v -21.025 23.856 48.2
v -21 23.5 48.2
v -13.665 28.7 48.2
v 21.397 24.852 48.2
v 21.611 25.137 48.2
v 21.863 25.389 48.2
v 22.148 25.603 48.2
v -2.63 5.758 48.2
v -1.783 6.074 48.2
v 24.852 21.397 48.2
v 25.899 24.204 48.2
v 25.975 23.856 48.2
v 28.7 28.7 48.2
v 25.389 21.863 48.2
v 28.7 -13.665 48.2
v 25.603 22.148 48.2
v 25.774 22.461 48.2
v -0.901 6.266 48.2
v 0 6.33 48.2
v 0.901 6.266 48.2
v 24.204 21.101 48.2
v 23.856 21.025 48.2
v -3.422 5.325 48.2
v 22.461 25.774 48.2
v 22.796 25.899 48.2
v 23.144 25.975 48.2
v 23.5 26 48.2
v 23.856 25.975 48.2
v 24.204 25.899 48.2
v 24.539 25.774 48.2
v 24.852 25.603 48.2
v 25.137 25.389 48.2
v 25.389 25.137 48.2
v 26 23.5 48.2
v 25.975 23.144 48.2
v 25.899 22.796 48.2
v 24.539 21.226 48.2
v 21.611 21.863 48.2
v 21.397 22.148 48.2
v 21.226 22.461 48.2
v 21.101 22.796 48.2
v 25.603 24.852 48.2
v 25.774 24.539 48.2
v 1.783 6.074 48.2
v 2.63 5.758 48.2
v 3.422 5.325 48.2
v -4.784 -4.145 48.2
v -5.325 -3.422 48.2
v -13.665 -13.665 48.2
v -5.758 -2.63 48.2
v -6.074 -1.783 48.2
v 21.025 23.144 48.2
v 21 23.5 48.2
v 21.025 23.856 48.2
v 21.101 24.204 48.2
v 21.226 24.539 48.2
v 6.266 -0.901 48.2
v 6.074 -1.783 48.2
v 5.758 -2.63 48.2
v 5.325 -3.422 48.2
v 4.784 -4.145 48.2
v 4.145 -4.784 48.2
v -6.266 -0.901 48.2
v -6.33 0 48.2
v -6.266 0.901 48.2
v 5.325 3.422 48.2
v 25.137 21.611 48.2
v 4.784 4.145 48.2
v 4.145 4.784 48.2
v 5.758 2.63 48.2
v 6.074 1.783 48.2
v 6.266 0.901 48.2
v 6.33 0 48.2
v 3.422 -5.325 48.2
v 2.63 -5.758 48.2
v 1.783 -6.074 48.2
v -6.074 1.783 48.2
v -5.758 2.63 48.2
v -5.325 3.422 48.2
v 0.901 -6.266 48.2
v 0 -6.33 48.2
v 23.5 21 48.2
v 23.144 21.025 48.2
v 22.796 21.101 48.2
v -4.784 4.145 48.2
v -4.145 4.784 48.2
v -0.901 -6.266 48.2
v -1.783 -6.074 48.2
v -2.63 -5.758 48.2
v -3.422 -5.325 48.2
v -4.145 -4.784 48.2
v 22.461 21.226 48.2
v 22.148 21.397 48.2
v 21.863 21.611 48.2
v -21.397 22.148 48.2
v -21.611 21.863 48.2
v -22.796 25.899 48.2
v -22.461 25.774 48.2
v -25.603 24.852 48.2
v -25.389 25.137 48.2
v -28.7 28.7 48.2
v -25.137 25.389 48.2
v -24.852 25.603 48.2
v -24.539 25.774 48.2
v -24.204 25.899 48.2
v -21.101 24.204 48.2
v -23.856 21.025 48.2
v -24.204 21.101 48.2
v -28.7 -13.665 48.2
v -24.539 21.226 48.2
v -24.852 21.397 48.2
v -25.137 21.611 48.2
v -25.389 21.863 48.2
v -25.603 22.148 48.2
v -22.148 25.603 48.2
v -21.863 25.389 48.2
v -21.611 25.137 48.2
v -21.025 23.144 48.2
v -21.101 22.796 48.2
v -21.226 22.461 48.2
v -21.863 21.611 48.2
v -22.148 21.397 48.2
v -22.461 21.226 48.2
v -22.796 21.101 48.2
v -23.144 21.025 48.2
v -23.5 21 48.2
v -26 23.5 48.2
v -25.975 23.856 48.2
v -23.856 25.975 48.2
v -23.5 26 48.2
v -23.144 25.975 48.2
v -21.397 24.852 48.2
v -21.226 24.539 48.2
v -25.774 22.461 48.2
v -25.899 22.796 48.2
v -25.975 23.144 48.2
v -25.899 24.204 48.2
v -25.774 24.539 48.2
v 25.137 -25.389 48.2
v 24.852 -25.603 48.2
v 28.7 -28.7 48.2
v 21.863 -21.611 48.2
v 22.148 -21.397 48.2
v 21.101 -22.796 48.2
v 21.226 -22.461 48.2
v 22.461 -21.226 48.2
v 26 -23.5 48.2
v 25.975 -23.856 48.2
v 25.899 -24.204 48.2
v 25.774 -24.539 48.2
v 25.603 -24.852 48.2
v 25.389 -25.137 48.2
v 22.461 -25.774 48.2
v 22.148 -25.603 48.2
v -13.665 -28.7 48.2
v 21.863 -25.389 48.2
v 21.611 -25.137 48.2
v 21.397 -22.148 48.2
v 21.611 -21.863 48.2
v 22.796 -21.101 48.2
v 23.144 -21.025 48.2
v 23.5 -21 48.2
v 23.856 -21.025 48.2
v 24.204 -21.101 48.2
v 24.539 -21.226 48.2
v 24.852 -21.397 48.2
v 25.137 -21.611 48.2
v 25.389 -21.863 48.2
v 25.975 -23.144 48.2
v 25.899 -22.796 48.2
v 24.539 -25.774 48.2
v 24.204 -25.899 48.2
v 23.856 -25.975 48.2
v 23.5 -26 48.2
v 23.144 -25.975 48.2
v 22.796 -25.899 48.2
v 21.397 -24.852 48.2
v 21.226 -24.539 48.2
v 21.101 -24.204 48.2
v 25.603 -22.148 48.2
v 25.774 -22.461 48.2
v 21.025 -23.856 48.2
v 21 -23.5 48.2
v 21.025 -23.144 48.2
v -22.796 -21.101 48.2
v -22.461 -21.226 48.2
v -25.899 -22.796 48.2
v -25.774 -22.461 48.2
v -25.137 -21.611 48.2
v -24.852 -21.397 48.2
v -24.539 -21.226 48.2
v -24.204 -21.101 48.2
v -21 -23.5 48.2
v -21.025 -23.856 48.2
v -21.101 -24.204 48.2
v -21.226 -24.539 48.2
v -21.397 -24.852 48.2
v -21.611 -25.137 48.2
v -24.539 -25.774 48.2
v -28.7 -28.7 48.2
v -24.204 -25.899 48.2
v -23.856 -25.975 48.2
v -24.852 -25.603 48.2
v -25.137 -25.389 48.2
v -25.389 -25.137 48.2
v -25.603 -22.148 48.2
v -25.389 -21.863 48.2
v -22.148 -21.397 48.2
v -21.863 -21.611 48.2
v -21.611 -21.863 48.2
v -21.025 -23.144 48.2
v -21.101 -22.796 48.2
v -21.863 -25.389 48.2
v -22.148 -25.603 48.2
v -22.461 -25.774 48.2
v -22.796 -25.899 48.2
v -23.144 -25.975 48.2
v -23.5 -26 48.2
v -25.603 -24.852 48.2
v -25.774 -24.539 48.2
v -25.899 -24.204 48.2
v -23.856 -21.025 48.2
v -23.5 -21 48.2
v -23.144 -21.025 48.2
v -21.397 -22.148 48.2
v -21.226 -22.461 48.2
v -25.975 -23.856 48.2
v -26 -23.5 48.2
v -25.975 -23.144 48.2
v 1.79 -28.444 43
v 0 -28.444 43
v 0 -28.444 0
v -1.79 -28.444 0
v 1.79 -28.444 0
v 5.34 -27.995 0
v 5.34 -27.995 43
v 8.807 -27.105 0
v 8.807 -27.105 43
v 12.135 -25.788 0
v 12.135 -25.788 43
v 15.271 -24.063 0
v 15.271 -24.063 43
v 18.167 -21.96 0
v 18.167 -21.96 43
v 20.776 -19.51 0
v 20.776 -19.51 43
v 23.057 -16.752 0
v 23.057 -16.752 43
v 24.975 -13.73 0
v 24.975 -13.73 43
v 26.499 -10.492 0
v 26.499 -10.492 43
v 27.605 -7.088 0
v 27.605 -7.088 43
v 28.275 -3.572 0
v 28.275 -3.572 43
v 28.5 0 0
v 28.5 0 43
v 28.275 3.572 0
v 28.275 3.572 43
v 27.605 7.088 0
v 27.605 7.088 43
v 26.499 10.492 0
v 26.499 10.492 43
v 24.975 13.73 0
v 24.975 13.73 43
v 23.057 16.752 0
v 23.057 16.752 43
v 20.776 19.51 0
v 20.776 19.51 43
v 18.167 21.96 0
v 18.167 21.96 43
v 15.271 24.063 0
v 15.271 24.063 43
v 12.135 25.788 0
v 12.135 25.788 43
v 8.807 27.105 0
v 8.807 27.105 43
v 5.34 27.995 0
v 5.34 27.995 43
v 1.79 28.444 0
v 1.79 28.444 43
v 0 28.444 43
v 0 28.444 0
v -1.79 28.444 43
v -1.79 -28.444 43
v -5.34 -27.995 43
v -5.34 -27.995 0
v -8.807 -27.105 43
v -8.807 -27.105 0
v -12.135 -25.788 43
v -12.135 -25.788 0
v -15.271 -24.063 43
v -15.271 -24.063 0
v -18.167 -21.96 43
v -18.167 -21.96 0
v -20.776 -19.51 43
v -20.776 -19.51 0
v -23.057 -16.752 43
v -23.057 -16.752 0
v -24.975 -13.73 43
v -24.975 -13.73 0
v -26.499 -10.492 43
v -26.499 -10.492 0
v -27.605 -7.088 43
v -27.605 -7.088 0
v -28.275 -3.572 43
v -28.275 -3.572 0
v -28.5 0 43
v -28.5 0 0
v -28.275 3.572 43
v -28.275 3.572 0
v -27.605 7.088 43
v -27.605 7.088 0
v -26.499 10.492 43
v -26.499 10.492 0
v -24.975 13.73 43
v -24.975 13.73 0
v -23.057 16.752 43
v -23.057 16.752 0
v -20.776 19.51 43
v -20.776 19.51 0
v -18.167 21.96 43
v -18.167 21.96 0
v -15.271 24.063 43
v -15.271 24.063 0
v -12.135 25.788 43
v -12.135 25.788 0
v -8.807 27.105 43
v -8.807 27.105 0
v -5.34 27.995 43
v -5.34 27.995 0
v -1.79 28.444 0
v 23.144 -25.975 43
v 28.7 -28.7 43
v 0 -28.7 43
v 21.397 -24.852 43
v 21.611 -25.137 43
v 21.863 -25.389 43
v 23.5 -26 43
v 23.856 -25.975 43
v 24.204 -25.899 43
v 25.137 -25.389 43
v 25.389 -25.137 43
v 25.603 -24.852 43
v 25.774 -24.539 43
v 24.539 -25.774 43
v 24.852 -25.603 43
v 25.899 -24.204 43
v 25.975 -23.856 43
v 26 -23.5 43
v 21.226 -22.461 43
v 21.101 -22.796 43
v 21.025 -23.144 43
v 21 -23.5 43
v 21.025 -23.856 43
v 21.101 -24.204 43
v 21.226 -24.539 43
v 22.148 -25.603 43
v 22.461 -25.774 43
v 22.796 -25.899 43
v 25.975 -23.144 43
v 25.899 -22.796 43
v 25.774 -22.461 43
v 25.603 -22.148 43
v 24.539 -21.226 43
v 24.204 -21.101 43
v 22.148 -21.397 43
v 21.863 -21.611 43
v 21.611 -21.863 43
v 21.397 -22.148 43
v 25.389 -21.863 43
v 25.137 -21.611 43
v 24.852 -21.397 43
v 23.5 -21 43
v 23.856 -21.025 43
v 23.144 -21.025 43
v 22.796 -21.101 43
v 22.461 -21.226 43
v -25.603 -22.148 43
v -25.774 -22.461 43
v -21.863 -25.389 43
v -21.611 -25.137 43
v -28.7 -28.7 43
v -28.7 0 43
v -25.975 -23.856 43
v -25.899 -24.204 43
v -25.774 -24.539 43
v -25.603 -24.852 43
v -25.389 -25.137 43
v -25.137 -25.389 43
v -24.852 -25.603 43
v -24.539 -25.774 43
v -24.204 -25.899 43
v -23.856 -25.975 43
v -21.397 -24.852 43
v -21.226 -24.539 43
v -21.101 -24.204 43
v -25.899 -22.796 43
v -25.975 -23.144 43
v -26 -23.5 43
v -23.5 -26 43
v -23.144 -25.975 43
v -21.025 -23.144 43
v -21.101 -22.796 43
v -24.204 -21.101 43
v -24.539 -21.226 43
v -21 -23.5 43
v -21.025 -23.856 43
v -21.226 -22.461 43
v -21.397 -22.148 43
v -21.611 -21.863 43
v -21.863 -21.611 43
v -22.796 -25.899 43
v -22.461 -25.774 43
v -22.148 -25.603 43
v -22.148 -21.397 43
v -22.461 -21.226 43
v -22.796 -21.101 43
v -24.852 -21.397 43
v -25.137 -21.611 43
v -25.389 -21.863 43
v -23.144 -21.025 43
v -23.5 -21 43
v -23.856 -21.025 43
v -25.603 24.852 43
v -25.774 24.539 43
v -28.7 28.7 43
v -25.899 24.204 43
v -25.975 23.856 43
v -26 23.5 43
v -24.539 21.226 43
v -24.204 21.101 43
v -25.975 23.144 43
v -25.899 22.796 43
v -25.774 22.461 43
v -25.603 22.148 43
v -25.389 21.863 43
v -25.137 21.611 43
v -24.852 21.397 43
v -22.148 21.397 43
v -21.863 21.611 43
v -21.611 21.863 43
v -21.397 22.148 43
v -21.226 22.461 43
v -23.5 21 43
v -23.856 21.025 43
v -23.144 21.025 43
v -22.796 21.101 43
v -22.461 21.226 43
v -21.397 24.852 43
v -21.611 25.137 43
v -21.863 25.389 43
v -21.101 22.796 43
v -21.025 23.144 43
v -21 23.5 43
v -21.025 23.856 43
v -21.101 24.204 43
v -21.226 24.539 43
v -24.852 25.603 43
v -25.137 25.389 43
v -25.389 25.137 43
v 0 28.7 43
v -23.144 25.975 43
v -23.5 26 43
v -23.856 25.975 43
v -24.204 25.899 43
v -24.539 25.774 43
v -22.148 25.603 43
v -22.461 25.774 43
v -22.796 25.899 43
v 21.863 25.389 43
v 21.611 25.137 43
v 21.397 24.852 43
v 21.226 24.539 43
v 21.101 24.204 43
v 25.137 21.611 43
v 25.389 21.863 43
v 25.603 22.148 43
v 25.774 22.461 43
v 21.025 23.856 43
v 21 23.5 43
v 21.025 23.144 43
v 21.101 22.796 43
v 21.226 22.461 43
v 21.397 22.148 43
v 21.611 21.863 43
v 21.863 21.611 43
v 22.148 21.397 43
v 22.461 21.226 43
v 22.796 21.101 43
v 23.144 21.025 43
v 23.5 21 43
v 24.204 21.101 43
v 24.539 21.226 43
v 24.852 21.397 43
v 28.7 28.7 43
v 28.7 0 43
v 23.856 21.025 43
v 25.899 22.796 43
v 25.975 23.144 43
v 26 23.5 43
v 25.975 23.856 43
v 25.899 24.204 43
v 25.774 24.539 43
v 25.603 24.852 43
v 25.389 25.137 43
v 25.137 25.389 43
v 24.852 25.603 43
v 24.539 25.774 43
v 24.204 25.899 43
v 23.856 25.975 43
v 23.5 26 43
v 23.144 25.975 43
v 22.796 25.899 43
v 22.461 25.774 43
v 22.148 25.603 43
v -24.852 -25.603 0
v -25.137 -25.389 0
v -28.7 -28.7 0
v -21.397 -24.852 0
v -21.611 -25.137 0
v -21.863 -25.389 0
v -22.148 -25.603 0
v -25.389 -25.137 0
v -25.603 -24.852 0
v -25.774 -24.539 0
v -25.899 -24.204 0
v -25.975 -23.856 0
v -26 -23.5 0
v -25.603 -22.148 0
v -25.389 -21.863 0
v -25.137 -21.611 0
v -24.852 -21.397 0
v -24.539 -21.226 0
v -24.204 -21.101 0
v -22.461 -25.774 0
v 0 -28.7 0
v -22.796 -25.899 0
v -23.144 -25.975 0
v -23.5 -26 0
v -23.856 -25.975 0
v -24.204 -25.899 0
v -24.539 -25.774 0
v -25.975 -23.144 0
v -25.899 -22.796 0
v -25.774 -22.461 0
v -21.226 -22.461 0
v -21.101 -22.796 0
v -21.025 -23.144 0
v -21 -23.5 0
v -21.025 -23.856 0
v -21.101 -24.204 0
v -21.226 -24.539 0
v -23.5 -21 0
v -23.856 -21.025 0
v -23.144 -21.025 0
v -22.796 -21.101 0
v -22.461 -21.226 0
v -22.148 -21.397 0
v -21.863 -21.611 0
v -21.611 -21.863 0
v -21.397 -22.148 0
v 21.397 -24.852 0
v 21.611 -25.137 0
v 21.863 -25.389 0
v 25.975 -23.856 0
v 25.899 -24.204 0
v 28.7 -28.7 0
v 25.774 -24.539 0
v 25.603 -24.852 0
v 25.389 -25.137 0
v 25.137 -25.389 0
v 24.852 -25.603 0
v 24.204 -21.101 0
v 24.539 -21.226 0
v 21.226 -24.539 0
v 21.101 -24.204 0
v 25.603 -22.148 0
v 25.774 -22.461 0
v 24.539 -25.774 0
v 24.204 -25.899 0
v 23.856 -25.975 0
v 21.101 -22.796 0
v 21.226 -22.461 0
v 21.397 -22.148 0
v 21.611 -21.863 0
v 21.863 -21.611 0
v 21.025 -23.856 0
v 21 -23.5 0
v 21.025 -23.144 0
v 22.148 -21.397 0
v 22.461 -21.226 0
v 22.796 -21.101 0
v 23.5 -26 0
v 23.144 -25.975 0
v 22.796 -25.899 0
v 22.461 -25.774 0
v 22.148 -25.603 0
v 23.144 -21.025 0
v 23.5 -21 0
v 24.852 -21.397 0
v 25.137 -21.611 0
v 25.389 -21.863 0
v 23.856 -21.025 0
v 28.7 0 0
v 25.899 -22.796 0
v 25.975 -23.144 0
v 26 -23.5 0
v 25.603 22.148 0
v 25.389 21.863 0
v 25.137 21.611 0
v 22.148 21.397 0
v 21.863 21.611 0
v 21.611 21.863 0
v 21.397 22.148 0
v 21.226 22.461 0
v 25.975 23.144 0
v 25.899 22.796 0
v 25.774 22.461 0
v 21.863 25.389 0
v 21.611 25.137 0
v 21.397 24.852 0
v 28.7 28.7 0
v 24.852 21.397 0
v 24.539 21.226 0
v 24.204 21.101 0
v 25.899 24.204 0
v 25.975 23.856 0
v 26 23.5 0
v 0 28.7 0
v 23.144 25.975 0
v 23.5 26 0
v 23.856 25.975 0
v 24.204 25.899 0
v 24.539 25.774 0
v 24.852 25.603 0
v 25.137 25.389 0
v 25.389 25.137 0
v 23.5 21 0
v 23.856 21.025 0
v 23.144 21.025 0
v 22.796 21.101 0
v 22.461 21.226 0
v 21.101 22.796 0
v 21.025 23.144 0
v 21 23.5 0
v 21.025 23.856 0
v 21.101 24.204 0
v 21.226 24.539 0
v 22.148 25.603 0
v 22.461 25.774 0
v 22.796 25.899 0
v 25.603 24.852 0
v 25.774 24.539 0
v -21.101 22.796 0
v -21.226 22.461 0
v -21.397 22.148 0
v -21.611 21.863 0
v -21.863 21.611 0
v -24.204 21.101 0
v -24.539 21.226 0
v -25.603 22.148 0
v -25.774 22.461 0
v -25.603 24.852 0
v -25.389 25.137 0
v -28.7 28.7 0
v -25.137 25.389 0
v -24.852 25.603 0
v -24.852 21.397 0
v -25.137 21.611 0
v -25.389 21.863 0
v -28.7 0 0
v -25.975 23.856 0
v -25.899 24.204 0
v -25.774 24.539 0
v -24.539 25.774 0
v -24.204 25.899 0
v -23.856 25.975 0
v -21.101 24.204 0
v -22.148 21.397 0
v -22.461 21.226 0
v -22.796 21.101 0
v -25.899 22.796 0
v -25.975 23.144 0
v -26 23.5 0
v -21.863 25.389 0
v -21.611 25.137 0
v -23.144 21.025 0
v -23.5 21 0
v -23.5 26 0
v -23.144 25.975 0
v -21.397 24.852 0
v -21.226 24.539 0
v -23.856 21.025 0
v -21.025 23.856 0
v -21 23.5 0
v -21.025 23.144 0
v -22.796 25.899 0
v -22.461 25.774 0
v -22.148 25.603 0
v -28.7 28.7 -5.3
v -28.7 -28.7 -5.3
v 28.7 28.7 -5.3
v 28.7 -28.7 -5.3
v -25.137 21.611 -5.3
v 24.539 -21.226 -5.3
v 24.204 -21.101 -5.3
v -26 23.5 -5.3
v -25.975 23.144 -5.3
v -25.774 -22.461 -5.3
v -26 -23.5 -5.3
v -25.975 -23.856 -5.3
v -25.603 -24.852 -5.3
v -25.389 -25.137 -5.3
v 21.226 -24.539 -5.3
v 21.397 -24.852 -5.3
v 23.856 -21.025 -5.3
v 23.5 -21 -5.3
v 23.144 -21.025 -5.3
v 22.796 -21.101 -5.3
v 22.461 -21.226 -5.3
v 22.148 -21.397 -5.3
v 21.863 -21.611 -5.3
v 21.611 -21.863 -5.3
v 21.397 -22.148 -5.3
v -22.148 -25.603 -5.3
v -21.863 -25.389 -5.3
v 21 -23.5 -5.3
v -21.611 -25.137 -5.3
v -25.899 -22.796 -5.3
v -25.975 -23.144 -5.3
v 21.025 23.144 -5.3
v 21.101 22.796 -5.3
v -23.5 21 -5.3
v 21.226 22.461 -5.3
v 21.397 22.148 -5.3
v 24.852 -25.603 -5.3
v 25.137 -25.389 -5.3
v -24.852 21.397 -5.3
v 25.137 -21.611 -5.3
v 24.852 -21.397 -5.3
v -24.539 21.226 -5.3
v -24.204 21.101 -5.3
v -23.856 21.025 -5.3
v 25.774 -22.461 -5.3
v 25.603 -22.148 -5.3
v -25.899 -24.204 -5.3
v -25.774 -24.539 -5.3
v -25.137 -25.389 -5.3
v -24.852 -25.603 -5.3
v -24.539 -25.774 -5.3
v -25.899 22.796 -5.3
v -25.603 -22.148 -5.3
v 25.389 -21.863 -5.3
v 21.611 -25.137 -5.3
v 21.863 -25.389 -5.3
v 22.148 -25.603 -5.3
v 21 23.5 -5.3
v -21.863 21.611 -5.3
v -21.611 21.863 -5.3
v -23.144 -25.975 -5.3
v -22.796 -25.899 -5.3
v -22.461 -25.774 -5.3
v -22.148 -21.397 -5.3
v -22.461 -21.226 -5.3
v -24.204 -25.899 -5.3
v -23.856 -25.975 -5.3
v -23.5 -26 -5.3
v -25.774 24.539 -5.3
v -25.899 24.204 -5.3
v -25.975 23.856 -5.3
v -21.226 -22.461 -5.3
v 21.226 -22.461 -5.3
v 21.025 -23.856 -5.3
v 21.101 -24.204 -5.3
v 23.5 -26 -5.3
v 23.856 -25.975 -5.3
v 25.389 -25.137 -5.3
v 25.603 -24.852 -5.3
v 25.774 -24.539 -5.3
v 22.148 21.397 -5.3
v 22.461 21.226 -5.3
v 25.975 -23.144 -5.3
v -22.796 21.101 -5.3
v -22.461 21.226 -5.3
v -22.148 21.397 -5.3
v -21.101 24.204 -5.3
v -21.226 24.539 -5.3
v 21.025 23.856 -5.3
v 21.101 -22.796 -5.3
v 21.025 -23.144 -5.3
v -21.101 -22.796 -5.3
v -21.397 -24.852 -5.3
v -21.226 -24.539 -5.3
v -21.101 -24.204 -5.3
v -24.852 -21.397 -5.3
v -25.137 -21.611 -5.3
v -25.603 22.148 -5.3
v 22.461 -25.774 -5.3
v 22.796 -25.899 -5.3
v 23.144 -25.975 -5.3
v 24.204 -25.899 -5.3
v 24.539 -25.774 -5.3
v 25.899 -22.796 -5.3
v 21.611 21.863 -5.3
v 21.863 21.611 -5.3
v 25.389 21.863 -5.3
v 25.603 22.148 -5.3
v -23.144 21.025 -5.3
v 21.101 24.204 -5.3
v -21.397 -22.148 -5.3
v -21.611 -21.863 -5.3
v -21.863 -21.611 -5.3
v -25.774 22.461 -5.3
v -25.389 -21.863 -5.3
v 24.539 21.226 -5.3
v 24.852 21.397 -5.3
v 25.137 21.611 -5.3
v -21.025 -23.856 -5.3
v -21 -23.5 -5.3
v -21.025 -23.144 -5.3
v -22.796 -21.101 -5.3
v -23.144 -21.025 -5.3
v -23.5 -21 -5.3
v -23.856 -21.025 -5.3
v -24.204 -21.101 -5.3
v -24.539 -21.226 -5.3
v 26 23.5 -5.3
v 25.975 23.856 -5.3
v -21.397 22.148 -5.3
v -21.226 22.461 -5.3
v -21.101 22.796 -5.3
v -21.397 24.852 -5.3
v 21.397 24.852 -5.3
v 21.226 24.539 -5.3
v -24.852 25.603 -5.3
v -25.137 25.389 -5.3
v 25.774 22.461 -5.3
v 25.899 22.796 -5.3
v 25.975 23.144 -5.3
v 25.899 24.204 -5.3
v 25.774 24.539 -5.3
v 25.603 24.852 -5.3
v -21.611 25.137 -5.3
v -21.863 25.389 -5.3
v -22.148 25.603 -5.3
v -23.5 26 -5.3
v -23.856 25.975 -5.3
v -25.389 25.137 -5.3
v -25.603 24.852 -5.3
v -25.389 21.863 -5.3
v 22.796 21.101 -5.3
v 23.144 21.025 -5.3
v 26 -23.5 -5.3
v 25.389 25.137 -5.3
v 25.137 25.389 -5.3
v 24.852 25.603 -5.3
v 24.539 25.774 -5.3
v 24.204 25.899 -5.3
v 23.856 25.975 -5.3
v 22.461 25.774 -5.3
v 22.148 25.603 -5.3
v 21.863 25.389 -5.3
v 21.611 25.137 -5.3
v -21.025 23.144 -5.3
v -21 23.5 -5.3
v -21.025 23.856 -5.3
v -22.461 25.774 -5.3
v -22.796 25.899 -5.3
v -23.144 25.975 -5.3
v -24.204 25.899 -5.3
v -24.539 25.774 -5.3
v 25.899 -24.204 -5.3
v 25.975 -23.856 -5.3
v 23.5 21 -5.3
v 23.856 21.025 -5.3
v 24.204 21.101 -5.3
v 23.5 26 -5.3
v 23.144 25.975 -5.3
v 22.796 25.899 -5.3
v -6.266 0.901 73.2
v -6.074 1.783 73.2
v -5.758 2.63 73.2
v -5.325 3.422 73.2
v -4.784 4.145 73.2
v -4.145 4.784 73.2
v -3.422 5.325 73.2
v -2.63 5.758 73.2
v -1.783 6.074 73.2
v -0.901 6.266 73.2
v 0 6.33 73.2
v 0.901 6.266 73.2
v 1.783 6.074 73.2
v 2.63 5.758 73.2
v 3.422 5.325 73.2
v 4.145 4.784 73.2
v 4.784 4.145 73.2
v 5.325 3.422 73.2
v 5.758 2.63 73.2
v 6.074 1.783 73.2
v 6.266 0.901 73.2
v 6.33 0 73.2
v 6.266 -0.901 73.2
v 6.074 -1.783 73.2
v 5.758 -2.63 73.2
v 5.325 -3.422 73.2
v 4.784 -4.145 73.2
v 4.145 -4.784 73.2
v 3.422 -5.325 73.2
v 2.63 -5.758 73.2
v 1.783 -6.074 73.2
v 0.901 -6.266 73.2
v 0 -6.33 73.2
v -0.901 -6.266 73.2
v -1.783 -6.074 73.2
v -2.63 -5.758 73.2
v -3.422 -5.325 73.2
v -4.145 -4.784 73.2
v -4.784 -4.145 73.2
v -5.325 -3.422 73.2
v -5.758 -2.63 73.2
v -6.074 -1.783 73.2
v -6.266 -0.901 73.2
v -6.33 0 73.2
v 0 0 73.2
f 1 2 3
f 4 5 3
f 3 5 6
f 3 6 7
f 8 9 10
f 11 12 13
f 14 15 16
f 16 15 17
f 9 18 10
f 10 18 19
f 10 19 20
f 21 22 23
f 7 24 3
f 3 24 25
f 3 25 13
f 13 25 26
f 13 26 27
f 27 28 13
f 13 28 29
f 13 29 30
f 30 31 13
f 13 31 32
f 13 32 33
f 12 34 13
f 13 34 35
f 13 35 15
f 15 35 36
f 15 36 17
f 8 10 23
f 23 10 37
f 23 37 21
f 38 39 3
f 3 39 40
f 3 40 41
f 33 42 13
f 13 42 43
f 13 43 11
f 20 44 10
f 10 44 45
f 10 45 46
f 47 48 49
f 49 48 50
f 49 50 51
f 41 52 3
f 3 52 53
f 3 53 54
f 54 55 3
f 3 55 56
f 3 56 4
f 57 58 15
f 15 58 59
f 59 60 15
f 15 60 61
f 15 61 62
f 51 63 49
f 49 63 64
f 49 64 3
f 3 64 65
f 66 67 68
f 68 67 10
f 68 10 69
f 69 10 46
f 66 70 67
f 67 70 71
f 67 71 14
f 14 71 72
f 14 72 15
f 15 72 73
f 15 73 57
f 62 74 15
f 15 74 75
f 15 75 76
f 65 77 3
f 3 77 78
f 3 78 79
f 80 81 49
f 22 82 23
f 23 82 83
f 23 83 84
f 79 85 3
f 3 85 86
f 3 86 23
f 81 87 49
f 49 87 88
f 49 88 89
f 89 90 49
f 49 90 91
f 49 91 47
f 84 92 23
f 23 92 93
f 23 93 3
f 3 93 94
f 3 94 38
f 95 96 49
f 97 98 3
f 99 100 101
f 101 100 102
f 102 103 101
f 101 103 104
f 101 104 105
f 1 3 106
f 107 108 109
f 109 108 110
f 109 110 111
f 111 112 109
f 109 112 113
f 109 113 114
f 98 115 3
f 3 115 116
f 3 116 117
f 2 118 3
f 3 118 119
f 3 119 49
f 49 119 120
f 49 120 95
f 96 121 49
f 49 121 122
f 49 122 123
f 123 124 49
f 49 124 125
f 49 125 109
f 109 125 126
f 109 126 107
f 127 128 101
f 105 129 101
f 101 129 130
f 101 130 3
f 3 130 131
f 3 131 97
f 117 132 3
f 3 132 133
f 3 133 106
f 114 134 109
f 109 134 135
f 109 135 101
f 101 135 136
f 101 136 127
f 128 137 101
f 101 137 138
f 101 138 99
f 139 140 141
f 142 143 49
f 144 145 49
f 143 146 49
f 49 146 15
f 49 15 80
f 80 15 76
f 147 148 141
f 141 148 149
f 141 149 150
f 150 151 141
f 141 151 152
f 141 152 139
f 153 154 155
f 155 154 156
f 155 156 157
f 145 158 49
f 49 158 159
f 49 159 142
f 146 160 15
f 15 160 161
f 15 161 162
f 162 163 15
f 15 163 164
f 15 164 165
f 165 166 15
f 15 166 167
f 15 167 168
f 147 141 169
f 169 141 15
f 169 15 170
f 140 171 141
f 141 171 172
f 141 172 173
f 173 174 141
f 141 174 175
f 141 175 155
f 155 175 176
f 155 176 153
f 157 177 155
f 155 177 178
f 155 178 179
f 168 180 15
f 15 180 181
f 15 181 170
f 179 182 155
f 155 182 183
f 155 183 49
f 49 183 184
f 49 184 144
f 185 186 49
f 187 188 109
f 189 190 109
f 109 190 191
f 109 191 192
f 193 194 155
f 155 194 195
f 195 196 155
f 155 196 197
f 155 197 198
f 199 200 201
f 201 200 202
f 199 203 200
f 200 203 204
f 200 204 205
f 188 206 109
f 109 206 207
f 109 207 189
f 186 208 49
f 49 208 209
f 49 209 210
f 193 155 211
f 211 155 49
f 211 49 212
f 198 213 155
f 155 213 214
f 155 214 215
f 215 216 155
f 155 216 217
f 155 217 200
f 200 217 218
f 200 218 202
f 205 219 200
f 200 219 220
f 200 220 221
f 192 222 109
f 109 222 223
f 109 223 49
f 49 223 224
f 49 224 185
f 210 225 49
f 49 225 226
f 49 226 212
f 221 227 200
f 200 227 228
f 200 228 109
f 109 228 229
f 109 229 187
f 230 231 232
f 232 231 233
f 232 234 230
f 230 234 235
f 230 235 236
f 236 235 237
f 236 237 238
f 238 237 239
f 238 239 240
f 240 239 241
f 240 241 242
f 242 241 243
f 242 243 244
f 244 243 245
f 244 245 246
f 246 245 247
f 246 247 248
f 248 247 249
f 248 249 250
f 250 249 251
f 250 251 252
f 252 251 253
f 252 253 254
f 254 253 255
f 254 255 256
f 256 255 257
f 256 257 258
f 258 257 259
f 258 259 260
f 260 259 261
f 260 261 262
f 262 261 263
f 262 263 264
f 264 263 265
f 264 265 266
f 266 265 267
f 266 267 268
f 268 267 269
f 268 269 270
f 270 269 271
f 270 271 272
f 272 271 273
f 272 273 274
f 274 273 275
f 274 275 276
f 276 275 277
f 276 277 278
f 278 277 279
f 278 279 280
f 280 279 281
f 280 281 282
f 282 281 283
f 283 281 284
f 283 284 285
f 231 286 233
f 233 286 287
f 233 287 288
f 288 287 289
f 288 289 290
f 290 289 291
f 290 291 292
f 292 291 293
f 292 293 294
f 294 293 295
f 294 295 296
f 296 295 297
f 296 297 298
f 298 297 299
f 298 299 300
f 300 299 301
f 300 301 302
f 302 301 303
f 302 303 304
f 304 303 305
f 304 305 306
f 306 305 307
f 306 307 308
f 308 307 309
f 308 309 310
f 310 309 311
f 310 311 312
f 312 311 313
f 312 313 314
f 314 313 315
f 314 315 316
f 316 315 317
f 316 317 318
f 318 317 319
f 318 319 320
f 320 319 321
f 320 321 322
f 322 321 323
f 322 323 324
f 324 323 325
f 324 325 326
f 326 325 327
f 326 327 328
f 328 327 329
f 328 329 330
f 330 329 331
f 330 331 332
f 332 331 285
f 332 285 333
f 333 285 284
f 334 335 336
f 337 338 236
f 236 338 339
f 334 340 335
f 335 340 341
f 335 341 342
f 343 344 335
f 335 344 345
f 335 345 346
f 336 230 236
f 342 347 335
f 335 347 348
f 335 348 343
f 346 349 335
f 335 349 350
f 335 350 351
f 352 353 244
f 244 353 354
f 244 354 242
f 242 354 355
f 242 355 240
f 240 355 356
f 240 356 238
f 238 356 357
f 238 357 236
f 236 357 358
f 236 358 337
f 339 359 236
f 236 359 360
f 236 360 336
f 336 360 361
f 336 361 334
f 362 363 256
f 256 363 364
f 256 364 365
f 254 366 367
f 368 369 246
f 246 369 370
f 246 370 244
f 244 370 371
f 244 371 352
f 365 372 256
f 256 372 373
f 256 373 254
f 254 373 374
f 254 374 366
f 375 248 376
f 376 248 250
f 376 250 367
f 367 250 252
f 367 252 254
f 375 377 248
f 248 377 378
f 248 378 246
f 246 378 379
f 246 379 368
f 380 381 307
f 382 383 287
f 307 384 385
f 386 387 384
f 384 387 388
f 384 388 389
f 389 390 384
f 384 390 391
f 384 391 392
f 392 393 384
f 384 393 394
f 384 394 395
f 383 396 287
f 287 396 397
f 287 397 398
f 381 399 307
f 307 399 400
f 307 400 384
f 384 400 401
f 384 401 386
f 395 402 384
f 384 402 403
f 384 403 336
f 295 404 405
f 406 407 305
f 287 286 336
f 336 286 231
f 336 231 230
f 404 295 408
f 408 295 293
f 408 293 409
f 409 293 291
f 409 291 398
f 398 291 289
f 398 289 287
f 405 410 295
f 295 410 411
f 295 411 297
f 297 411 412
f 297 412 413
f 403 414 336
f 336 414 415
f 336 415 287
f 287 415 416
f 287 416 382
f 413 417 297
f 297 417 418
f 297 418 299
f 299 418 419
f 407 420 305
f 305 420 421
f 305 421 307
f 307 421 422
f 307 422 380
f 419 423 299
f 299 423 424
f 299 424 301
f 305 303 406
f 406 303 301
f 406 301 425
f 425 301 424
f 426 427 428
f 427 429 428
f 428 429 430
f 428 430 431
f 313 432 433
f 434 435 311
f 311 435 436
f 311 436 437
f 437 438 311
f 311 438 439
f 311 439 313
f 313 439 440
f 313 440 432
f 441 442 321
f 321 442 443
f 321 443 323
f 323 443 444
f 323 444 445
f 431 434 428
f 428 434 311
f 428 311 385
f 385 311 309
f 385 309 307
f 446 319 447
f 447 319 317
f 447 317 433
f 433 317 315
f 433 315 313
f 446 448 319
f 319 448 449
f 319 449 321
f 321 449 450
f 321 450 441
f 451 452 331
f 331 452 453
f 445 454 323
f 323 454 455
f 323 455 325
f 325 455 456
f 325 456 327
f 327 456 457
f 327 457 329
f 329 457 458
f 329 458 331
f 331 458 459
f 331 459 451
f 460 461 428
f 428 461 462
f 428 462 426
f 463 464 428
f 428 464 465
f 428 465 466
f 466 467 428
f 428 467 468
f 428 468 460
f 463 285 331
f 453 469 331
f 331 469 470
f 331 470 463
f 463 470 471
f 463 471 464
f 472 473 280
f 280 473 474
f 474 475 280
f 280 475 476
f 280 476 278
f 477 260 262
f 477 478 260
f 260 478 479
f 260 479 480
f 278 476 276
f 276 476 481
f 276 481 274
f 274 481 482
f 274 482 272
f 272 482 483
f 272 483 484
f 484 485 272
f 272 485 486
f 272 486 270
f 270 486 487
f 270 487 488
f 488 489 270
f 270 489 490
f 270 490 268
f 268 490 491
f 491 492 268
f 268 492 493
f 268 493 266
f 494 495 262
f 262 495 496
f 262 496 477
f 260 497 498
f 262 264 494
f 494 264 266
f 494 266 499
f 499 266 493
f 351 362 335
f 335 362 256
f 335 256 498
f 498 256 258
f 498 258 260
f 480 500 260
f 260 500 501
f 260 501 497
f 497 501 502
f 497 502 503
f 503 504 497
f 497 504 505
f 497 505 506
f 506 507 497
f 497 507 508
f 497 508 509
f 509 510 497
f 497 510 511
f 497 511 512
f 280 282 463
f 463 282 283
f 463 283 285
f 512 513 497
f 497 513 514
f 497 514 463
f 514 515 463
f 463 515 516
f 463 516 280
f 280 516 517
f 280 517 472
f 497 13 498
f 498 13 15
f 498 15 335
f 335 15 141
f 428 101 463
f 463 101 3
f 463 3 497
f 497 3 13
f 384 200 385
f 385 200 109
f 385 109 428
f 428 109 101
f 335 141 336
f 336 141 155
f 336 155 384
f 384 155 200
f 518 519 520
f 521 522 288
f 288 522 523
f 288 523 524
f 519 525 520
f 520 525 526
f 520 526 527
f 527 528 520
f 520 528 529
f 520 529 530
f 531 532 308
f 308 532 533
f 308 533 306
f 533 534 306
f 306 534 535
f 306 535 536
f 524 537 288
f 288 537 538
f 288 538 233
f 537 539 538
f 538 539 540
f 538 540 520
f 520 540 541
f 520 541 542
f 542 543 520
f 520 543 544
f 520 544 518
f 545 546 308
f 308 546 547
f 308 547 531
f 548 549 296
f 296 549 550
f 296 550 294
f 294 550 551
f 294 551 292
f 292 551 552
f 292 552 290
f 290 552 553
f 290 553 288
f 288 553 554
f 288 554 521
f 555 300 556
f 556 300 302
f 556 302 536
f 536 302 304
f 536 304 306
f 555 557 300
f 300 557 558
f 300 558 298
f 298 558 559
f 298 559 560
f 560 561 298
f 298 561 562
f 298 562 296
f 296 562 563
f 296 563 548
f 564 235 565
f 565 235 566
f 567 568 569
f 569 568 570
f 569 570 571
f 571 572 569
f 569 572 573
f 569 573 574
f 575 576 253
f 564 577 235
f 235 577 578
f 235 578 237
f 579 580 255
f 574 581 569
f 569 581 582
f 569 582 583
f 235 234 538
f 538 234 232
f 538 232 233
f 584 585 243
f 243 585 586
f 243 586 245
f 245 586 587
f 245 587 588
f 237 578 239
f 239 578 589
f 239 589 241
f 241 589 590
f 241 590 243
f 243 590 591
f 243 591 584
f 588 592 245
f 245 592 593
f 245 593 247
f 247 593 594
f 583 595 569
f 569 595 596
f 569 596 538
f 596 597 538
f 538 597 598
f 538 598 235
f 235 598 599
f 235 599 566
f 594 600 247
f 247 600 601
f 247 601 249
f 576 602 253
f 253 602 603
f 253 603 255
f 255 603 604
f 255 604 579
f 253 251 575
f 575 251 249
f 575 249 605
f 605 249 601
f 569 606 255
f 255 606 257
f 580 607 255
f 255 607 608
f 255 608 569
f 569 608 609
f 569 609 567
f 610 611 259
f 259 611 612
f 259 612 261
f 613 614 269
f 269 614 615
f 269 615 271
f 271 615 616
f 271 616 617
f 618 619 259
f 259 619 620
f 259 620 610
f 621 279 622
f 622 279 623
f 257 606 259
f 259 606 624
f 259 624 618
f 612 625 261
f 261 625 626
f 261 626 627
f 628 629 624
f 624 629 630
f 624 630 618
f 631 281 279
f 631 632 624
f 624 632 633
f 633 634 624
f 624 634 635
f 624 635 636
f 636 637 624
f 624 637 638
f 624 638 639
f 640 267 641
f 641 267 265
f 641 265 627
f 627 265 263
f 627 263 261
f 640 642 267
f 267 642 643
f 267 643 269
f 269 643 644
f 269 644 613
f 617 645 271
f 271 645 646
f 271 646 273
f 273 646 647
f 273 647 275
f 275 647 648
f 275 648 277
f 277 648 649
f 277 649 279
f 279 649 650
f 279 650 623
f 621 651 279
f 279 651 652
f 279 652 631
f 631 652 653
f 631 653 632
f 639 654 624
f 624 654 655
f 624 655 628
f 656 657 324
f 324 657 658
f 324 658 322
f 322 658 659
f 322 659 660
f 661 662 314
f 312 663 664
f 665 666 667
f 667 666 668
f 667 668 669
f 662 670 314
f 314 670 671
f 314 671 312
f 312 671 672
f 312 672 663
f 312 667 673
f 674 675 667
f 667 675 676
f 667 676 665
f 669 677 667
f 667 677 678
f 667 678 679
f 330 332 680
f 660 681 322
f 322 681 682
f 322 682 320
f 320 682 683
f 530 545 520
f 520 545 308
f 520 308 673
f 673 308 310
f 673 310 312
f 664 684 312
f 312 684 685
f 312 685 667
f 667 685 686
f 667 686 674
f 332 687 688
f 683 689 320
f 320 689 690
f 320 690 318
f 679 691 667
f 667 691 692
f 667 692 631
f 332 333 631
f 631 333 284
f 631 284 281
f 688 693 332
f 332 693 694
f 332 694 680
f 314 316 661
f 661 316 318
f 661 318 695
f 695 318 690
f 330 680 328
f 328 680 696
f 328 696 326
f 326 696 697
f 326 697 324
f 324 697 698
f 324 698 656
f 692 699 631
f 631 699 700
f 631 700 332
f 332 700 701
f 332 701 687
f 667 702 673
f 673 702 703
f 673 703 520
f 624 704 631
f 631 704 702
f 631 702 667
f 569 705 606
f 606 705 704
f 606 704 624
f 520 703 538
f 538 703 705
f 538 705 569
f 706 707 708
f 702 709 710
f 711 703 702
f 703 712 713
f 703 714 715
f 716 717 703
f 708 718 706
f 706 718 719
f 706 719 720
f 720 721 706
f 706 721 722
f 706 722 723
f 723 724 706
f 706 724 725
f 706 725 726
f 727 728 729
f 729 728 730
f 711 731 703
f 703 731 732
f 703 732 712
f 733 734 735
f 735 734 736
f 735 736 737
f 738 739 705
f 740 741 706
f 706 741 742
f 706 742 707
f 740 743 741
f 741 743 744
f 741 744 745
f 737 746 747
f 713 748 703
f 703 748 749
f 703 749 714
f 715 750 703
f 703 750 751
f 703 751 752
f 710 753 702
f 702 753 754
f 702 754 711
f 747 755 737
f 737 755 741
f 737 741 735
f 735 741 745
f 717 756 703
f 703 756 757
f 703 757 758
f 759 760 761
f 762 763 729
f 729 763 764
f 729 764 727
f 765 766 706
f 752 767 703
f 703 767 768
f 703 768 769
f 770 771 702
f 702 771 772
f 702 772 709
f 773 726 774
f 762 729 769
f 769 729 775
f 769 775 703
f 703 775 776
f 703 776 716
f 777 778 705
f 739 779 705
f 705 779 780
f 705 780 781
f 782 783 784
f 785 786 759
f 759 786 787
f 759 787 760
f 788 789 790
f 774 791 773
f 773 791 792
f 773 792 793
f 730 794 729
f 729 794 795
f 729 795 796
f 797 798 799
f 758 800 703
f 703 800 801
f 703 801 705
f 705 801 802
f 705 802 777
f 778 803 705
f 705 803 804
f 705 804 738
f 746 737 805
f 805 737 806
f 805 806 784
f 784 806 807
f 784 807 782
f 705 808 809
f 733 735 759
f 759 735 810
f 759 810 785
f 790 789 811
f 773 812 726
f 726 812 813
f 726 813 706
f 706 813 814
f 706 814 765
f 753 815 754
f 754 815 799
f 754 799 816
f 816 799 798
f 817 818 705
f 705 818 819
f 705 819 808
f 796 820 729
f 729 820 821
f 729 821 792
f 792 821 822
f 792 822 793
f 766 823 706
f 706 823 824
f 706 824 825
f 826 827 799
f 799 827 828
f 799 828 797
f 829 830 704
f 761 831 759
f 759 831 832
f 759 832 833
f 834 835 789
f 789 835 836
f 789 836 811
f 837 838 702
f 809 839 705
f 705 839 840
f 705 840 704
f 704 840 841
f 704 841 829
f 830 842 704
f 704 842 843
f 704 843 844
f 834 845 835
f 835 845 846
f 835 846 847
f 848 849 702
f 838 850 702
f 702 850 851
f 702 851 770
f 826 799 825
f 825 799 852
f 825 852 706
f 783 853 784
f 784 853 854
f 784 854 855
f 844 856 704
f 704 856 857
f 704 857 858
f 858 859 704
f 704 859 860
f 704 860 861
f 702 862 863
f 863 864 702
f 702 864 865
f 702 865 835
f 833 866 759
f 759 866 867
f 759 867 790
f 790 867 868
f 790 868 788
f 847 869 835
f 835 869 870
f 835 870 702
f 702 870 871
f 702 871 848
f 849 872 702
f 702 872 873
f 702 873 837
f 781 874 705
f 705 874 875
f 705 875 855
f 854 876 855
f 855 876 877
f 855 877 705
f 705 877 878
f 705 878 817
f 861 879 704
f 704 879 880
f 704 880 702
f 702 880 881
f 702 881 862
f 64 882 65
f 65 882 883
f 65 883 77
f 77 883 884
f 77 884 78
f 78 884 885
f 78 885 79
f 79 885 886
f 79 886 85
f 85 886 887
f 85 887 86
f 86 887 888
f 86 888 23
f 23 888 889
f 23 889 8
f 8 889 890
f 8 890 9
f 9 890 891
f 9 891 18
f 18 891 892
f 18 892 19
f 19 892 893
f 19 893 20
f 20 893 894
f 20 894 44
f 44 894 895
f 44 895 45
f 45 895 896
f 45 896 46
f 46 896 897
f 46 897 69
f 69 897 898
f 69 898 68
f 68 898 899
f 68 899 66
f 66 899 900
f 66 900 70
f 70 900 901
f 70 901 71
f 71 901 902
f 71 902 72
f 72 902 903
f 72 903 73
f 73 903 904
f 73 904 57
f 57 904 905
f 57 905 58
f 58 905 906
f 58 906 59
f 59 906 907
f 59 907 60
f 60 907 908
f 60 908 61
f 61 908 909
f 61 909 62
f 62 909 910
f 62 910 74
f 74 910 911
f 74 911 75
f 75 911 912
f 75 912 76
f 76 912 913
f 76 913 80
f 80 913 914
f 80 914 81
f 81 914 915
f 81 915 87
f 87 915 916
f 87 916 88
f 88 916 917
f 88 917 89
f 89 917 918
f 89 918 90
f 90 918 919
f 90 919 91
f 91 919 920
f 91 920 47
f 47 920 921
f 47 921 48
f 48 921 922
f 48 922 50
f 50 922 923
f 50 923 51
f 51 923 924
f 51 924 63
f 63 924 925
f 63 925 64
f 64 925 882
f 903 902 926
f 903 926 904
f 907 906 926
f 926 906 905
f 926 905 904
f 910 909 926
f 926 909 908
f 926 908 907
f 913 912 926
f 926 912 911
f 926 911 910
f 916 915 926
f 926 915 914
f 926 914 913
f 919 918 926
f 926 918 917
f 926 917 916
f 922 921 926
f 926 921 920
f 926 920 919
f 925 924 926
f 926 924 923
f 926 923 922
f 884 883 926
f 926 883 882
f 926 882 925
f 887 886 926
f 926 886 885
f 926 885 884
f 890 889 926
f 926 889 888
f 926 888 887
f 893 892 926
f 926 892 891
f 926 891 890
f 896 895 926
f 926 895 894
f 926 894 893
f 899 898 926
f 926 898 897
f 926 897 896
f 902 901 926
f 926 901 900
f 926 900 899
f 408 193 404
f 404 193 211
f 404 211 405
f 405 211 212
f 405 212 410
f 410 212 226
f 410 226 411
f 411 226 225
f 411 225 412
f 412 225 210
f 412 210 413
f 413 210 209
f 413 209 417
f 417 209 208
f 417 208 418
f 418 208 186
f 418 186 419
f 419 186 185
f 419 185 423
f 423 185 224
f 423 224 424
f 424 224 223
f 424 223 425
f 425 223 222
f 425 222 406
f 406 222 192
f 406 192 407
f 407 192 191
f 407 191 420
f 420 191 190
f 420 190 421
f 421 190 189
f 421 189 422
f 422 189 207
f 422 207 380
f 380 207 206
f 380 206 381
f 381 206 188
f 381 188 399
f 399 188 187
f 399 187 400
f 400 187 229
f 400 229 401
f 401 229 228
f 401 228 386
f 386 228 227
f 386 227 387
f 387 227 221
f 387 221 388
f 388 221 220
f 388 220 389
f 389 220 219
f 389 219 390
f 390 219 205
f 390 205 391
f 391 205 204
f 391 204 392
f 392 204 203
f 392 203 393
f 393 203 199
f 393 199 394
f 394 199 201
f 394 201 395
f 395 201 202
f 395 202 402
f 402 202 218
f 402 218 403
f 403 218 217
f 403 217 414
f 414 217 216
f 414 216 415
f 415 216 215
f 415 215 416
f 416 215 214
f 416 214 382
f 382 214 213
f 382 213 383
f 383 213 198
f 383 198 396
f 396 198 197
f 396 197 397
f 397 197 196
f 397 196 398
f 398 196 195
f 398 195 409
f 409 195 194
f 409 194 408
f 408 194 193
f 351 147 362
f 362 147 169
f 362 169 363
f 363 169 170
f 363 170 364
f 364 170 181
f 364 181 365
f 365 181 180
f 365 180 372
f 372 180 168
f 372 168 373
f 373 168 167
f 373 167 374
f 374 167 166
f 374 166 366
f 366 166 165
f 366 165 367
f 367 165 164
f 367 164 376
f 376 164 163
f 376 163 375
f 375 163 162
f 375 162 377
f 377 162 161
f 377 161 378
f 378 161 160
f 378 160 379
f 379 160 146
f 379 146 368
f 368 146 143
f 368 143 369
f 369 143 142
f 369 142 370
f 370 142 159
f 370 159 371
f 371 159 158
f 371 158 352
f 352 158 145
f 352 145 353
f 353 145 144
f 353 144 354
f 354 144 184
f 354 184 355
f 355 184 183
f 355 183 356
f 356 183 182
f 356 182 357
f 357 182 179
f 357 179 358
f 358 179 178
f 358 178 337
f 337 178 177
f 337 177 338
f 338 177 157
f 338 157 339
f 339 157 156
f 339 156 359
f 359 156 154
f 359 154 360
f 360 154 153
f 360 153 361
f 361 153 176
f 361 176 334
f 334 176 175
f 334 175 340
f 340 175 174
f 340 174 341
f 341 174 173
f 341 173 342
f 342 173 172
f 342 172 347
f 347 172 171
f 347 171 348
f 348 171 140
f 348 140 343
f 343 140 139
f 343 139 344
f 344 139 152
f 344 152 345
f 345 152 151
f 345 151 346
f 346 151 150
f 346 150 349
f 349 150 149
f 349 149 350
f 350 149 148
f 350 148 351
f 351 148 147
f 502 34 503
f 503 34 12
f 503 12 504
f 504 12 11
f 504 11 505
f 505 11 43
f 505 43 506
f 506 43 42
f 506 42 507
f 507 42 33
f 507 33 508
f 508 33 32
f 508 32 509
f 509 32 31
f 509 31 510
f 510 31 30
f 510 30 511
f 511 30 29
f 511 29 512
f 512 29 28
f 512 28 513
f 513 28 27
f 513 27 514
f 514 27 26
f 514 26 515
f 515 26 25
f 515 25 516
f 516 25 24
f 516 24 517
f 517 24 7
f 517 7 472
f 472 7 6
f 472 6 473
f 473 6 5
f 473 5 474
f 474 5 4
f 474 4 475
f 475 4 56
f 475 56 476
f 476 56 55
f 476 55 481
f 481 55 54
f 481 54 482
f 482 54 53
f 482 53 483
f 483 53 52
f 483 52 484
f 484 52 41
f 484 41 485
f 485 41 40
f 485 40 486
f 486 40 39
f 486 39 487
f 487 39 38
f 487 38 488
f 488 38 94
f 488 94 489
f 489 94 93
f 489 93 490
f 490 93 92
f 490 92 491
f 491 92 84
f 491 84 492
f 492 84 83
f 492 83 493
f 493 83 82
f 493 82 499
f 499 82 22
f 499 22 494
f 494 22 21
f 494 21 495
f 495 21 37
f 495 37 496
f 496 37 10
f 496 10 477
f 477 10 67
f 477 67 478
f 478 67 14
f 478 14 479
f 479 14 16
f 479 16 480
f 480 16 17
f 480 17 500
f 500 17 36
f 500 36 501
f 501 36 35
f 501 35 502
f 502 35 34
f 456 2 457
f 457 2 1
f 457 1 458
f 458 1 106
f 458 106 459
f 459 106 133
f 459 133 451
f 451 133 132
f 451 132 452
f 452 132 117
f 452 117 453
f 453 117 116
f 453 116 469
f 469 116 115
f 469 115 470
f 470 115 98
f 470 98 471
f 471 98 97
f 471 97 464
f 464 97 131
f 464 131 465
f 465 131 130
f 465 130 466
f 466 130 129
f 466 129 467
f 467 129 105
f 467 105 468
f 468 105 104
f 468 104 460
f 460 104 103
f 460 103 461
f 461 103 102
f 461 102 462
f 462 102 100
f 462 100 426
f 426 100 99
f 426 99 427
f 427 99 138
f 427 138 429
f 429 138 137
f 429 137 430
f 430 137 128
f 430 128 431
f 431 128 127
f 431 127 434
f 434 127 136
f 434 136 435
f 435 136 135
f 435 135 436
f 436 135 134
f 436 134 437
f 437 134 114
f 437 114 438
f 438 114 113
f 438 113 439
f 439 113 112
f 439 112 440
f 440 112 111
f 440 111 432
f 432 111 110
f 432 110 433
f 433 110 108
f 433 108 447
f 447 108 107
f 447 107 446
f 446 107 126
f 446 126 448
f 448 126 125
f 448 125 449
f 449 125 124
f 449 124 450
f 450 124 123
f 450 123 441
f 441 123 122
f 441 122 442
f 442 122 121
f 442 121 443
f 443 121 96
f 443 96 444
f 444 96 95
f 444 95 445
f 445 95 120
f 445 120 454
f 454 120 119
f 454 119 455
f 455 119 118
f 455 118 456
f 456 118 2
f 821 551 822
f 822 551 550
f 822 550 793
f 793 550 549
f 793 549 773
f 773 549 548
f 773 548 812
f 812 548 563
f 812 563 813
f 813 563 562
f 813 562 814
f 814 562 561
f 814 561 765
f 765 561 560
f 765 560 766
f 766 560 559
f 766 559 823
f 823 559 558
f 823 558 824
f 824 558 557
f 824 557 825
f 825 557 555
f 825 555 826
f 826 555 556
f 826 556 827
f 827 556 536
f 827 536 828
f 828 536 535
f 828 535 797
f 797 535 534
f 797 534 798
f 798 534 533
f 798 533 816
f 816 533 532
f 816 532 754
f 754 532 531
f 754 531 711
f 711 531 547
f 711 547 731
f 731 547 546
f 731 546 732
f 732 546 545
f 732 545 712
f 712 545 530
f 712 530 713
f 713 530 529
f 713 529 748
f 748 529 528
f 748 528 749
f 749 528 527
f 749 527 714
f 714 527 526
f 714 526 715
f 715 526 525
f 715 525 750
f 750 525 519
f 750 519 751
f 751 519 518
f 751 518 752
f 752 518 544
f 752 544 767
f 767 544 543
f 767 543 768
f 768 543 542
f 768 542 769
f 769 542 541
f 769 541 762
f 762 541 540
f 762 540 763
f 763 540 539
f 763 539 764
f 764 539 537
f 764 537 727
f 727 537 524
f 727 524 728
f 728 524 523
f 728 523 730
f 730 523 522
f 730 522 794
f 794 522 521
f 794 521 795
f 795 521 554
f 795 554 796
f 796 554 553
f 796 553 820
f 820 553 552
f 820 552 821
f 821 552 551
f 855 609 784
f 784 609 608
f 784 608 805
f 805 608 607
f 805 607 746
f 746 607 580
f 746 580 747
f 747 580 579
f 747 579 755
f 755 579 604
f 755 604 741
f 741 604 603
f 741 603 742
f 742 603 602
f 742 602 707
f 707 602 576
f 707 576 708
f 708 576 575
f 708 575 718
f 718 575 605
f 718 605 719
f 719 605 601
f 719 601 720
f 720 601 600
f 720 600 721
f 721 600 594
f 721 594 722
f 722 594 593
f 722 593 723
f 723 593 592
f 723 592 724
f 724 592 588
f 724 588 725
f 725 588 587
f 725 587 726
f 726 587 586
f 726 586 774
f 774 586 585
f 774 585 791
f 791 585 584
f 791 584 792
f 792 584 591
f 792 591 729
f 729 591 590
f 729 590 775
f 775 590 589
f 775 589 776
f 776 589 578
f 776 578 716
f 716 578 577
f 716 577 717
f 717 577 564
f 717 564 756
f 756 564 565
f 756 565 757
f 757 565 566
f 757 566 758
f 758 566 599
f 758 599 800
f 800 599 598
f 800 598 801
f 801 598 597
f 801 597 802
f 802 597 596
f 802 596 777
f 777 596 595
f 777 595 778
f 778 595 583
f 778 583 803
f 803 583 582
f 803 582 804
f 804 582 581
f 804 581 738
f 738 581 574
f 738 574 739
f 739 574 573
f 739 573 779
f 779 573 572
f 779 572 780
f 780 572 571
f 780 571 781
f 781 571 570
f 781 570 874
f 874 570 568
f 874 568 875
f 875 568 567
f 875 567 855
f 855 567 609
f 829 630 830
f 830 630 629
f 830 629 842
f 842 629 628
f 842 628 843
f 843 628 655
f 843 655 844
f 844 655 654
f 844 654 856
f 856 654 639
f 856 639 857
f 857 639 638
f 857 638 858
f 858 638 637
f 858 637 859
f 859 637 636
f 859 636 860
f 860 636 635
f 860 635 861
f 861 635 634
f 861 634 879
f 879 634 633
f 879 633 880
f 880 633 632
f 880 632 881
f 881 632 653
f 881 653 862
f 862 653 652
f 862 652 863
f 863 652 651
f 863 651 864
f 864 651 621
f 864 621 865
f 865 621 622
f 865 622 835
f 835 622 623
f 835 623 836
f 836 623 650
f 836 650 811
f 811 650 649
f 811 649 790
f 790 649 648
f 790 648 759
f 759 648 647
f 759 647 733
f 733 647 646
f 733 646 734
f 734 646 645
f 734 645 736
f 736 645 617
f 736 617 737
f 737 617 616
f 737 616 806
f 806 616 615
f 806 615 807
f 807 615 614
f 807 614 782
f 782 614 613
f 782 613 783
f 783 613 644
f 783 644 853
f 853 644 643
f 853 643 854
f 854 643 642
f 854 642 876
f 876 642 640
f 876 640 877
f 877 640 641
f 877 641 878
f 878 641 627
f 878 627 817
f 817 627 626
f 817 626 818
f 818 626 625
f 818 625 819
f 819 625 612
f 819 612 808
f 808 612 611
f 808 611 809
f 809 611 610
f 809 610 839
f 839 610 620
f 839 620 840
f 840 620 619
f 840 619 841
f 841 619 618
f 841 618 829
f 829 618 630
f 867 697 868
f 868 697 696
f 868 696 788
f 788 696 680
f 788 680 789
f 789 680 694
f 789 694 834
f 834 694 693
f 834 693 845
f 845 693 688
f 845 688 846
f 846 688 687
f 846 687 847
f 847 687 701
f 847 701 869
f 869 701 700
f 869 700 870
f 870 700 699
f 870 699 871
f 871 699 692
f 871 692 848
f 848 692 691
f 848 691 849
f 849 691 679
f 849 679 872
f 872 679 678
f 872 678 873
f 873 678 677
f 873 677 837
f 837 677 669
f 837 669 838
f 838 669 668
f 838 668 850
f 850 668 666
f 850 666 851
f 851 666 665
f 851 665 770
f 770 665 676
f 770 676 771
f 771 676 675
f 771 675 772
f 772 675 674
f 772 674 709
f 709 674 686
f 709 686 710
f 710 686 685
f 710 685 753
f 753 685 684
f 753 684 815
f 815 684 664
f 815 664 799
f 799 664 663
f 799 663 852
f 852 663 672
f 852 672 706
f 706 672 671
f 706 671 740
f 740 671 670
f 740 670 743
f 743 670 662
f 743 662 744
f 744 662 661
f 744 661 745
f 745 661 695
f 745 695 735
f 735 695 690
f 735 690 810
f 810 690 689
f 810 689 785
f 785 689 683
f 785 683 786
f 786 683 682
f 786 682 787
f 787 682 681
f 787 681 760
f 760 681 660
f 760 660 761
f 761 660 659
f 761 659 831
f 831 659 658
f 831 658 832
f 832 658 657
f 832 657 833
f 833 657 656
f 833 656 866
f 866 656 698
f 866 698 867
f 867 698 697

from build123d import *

# Parameters (mm, degrees)
SKIZZE1_R                       = 28.5
AUFSATZ_LINEAR_AUSTRAGEN1_DEPTH = 43
AUFSATZ_LINEAR_AUSTRAGEN2_DEPTH = 5.2
AUFSATZ_LINEAR_AUSTRAGEN3_DEPTH = 5.3
SKIZZE4_R                       = 6.33
AUFSATZ_LINEAR_AUSTRAGEN4_DEPTH = 25
M6X1_0_GEWINDEBOHRUNG1_D        = 5
M6X1_0_GEWINDEBOHRUNG1_DEPTH    = 5.2
F_5_0_5_DURCHMESSER_BOHRUNG1_D  = 5


with BuildPart() as part:
    # Skizze1 → Aufsatz-Linear austragen1 (new body)
    with BuildSketch(Plane.XY):
        Circle(SKIZZE1_R)
    extrude(amount=AUFSATZ_LINEAR_AUSTRAGEN1_DEPTH)

    # Skizze2 → Aufsatz-Linear austragen2 (add)
    with BuildSketch(Plane.XY.offset(43)):
        Polygon((28.7, 0), (28.7, 28.7), (-28.7, 28.7), (-28.7, -28.7), (28.7, -28.7), align=None)
    extrude(amount=AUFSATZ_LINEAR_AUSTRAGEN2_DEPTH)

    # Skizze3 → Aufsatz-Linear austragen3 (add)
    with BuildSketch(Plane(origin=(0, 0, 0), x_dir=(-1, 0, 0), z_dir=(0, 0, -1))):
        Polygon((28.7, 0), (28.7, 28.7), (-28.7, 28.7), (-28.7, -28.7), (28.7, -28.7), align=None)
    extrude(amount=AUFSATZ_LINEAR_AUSTRAGEN3_DEPTH)

    # Skizze4 → Aufsatz-Linear austragen4 (add)
    with BuildSketch(Plane.XY.offset(48.2)):
        Circle(SKIZZE4_R)
    extrude(amount=AUFSATZ_LINEAR_AUSTRAGEN4_DEPTH)

    # M6x1.0 Gewindebohrung1
    with Locations(Plane.XY.offset(48.2)):
        with Locations((-23.5, 23.5), (23.5, 23.5), (23.5, -23.5), (-23.5, -23.5)):
            Hole(M6X1_0_GEWINDEBOHRUNG1_D / 2, depth=M6X1_0_GEWINDEBOHRUNG1_DEPTH)

    # Ø5.0 (5) Durchmesser Bohrung1 (through all)
    with Locations(Plane.XY.offset(48.2)):
        with Locations((-23.5, 23.5), (23.5, 23.5), (23.5, -23.5), (-23.5, -23.5)):
            Hole(F_5_0_5_DURCHMESSER_BOHRUNG1_D / 2)


solid = part.part
